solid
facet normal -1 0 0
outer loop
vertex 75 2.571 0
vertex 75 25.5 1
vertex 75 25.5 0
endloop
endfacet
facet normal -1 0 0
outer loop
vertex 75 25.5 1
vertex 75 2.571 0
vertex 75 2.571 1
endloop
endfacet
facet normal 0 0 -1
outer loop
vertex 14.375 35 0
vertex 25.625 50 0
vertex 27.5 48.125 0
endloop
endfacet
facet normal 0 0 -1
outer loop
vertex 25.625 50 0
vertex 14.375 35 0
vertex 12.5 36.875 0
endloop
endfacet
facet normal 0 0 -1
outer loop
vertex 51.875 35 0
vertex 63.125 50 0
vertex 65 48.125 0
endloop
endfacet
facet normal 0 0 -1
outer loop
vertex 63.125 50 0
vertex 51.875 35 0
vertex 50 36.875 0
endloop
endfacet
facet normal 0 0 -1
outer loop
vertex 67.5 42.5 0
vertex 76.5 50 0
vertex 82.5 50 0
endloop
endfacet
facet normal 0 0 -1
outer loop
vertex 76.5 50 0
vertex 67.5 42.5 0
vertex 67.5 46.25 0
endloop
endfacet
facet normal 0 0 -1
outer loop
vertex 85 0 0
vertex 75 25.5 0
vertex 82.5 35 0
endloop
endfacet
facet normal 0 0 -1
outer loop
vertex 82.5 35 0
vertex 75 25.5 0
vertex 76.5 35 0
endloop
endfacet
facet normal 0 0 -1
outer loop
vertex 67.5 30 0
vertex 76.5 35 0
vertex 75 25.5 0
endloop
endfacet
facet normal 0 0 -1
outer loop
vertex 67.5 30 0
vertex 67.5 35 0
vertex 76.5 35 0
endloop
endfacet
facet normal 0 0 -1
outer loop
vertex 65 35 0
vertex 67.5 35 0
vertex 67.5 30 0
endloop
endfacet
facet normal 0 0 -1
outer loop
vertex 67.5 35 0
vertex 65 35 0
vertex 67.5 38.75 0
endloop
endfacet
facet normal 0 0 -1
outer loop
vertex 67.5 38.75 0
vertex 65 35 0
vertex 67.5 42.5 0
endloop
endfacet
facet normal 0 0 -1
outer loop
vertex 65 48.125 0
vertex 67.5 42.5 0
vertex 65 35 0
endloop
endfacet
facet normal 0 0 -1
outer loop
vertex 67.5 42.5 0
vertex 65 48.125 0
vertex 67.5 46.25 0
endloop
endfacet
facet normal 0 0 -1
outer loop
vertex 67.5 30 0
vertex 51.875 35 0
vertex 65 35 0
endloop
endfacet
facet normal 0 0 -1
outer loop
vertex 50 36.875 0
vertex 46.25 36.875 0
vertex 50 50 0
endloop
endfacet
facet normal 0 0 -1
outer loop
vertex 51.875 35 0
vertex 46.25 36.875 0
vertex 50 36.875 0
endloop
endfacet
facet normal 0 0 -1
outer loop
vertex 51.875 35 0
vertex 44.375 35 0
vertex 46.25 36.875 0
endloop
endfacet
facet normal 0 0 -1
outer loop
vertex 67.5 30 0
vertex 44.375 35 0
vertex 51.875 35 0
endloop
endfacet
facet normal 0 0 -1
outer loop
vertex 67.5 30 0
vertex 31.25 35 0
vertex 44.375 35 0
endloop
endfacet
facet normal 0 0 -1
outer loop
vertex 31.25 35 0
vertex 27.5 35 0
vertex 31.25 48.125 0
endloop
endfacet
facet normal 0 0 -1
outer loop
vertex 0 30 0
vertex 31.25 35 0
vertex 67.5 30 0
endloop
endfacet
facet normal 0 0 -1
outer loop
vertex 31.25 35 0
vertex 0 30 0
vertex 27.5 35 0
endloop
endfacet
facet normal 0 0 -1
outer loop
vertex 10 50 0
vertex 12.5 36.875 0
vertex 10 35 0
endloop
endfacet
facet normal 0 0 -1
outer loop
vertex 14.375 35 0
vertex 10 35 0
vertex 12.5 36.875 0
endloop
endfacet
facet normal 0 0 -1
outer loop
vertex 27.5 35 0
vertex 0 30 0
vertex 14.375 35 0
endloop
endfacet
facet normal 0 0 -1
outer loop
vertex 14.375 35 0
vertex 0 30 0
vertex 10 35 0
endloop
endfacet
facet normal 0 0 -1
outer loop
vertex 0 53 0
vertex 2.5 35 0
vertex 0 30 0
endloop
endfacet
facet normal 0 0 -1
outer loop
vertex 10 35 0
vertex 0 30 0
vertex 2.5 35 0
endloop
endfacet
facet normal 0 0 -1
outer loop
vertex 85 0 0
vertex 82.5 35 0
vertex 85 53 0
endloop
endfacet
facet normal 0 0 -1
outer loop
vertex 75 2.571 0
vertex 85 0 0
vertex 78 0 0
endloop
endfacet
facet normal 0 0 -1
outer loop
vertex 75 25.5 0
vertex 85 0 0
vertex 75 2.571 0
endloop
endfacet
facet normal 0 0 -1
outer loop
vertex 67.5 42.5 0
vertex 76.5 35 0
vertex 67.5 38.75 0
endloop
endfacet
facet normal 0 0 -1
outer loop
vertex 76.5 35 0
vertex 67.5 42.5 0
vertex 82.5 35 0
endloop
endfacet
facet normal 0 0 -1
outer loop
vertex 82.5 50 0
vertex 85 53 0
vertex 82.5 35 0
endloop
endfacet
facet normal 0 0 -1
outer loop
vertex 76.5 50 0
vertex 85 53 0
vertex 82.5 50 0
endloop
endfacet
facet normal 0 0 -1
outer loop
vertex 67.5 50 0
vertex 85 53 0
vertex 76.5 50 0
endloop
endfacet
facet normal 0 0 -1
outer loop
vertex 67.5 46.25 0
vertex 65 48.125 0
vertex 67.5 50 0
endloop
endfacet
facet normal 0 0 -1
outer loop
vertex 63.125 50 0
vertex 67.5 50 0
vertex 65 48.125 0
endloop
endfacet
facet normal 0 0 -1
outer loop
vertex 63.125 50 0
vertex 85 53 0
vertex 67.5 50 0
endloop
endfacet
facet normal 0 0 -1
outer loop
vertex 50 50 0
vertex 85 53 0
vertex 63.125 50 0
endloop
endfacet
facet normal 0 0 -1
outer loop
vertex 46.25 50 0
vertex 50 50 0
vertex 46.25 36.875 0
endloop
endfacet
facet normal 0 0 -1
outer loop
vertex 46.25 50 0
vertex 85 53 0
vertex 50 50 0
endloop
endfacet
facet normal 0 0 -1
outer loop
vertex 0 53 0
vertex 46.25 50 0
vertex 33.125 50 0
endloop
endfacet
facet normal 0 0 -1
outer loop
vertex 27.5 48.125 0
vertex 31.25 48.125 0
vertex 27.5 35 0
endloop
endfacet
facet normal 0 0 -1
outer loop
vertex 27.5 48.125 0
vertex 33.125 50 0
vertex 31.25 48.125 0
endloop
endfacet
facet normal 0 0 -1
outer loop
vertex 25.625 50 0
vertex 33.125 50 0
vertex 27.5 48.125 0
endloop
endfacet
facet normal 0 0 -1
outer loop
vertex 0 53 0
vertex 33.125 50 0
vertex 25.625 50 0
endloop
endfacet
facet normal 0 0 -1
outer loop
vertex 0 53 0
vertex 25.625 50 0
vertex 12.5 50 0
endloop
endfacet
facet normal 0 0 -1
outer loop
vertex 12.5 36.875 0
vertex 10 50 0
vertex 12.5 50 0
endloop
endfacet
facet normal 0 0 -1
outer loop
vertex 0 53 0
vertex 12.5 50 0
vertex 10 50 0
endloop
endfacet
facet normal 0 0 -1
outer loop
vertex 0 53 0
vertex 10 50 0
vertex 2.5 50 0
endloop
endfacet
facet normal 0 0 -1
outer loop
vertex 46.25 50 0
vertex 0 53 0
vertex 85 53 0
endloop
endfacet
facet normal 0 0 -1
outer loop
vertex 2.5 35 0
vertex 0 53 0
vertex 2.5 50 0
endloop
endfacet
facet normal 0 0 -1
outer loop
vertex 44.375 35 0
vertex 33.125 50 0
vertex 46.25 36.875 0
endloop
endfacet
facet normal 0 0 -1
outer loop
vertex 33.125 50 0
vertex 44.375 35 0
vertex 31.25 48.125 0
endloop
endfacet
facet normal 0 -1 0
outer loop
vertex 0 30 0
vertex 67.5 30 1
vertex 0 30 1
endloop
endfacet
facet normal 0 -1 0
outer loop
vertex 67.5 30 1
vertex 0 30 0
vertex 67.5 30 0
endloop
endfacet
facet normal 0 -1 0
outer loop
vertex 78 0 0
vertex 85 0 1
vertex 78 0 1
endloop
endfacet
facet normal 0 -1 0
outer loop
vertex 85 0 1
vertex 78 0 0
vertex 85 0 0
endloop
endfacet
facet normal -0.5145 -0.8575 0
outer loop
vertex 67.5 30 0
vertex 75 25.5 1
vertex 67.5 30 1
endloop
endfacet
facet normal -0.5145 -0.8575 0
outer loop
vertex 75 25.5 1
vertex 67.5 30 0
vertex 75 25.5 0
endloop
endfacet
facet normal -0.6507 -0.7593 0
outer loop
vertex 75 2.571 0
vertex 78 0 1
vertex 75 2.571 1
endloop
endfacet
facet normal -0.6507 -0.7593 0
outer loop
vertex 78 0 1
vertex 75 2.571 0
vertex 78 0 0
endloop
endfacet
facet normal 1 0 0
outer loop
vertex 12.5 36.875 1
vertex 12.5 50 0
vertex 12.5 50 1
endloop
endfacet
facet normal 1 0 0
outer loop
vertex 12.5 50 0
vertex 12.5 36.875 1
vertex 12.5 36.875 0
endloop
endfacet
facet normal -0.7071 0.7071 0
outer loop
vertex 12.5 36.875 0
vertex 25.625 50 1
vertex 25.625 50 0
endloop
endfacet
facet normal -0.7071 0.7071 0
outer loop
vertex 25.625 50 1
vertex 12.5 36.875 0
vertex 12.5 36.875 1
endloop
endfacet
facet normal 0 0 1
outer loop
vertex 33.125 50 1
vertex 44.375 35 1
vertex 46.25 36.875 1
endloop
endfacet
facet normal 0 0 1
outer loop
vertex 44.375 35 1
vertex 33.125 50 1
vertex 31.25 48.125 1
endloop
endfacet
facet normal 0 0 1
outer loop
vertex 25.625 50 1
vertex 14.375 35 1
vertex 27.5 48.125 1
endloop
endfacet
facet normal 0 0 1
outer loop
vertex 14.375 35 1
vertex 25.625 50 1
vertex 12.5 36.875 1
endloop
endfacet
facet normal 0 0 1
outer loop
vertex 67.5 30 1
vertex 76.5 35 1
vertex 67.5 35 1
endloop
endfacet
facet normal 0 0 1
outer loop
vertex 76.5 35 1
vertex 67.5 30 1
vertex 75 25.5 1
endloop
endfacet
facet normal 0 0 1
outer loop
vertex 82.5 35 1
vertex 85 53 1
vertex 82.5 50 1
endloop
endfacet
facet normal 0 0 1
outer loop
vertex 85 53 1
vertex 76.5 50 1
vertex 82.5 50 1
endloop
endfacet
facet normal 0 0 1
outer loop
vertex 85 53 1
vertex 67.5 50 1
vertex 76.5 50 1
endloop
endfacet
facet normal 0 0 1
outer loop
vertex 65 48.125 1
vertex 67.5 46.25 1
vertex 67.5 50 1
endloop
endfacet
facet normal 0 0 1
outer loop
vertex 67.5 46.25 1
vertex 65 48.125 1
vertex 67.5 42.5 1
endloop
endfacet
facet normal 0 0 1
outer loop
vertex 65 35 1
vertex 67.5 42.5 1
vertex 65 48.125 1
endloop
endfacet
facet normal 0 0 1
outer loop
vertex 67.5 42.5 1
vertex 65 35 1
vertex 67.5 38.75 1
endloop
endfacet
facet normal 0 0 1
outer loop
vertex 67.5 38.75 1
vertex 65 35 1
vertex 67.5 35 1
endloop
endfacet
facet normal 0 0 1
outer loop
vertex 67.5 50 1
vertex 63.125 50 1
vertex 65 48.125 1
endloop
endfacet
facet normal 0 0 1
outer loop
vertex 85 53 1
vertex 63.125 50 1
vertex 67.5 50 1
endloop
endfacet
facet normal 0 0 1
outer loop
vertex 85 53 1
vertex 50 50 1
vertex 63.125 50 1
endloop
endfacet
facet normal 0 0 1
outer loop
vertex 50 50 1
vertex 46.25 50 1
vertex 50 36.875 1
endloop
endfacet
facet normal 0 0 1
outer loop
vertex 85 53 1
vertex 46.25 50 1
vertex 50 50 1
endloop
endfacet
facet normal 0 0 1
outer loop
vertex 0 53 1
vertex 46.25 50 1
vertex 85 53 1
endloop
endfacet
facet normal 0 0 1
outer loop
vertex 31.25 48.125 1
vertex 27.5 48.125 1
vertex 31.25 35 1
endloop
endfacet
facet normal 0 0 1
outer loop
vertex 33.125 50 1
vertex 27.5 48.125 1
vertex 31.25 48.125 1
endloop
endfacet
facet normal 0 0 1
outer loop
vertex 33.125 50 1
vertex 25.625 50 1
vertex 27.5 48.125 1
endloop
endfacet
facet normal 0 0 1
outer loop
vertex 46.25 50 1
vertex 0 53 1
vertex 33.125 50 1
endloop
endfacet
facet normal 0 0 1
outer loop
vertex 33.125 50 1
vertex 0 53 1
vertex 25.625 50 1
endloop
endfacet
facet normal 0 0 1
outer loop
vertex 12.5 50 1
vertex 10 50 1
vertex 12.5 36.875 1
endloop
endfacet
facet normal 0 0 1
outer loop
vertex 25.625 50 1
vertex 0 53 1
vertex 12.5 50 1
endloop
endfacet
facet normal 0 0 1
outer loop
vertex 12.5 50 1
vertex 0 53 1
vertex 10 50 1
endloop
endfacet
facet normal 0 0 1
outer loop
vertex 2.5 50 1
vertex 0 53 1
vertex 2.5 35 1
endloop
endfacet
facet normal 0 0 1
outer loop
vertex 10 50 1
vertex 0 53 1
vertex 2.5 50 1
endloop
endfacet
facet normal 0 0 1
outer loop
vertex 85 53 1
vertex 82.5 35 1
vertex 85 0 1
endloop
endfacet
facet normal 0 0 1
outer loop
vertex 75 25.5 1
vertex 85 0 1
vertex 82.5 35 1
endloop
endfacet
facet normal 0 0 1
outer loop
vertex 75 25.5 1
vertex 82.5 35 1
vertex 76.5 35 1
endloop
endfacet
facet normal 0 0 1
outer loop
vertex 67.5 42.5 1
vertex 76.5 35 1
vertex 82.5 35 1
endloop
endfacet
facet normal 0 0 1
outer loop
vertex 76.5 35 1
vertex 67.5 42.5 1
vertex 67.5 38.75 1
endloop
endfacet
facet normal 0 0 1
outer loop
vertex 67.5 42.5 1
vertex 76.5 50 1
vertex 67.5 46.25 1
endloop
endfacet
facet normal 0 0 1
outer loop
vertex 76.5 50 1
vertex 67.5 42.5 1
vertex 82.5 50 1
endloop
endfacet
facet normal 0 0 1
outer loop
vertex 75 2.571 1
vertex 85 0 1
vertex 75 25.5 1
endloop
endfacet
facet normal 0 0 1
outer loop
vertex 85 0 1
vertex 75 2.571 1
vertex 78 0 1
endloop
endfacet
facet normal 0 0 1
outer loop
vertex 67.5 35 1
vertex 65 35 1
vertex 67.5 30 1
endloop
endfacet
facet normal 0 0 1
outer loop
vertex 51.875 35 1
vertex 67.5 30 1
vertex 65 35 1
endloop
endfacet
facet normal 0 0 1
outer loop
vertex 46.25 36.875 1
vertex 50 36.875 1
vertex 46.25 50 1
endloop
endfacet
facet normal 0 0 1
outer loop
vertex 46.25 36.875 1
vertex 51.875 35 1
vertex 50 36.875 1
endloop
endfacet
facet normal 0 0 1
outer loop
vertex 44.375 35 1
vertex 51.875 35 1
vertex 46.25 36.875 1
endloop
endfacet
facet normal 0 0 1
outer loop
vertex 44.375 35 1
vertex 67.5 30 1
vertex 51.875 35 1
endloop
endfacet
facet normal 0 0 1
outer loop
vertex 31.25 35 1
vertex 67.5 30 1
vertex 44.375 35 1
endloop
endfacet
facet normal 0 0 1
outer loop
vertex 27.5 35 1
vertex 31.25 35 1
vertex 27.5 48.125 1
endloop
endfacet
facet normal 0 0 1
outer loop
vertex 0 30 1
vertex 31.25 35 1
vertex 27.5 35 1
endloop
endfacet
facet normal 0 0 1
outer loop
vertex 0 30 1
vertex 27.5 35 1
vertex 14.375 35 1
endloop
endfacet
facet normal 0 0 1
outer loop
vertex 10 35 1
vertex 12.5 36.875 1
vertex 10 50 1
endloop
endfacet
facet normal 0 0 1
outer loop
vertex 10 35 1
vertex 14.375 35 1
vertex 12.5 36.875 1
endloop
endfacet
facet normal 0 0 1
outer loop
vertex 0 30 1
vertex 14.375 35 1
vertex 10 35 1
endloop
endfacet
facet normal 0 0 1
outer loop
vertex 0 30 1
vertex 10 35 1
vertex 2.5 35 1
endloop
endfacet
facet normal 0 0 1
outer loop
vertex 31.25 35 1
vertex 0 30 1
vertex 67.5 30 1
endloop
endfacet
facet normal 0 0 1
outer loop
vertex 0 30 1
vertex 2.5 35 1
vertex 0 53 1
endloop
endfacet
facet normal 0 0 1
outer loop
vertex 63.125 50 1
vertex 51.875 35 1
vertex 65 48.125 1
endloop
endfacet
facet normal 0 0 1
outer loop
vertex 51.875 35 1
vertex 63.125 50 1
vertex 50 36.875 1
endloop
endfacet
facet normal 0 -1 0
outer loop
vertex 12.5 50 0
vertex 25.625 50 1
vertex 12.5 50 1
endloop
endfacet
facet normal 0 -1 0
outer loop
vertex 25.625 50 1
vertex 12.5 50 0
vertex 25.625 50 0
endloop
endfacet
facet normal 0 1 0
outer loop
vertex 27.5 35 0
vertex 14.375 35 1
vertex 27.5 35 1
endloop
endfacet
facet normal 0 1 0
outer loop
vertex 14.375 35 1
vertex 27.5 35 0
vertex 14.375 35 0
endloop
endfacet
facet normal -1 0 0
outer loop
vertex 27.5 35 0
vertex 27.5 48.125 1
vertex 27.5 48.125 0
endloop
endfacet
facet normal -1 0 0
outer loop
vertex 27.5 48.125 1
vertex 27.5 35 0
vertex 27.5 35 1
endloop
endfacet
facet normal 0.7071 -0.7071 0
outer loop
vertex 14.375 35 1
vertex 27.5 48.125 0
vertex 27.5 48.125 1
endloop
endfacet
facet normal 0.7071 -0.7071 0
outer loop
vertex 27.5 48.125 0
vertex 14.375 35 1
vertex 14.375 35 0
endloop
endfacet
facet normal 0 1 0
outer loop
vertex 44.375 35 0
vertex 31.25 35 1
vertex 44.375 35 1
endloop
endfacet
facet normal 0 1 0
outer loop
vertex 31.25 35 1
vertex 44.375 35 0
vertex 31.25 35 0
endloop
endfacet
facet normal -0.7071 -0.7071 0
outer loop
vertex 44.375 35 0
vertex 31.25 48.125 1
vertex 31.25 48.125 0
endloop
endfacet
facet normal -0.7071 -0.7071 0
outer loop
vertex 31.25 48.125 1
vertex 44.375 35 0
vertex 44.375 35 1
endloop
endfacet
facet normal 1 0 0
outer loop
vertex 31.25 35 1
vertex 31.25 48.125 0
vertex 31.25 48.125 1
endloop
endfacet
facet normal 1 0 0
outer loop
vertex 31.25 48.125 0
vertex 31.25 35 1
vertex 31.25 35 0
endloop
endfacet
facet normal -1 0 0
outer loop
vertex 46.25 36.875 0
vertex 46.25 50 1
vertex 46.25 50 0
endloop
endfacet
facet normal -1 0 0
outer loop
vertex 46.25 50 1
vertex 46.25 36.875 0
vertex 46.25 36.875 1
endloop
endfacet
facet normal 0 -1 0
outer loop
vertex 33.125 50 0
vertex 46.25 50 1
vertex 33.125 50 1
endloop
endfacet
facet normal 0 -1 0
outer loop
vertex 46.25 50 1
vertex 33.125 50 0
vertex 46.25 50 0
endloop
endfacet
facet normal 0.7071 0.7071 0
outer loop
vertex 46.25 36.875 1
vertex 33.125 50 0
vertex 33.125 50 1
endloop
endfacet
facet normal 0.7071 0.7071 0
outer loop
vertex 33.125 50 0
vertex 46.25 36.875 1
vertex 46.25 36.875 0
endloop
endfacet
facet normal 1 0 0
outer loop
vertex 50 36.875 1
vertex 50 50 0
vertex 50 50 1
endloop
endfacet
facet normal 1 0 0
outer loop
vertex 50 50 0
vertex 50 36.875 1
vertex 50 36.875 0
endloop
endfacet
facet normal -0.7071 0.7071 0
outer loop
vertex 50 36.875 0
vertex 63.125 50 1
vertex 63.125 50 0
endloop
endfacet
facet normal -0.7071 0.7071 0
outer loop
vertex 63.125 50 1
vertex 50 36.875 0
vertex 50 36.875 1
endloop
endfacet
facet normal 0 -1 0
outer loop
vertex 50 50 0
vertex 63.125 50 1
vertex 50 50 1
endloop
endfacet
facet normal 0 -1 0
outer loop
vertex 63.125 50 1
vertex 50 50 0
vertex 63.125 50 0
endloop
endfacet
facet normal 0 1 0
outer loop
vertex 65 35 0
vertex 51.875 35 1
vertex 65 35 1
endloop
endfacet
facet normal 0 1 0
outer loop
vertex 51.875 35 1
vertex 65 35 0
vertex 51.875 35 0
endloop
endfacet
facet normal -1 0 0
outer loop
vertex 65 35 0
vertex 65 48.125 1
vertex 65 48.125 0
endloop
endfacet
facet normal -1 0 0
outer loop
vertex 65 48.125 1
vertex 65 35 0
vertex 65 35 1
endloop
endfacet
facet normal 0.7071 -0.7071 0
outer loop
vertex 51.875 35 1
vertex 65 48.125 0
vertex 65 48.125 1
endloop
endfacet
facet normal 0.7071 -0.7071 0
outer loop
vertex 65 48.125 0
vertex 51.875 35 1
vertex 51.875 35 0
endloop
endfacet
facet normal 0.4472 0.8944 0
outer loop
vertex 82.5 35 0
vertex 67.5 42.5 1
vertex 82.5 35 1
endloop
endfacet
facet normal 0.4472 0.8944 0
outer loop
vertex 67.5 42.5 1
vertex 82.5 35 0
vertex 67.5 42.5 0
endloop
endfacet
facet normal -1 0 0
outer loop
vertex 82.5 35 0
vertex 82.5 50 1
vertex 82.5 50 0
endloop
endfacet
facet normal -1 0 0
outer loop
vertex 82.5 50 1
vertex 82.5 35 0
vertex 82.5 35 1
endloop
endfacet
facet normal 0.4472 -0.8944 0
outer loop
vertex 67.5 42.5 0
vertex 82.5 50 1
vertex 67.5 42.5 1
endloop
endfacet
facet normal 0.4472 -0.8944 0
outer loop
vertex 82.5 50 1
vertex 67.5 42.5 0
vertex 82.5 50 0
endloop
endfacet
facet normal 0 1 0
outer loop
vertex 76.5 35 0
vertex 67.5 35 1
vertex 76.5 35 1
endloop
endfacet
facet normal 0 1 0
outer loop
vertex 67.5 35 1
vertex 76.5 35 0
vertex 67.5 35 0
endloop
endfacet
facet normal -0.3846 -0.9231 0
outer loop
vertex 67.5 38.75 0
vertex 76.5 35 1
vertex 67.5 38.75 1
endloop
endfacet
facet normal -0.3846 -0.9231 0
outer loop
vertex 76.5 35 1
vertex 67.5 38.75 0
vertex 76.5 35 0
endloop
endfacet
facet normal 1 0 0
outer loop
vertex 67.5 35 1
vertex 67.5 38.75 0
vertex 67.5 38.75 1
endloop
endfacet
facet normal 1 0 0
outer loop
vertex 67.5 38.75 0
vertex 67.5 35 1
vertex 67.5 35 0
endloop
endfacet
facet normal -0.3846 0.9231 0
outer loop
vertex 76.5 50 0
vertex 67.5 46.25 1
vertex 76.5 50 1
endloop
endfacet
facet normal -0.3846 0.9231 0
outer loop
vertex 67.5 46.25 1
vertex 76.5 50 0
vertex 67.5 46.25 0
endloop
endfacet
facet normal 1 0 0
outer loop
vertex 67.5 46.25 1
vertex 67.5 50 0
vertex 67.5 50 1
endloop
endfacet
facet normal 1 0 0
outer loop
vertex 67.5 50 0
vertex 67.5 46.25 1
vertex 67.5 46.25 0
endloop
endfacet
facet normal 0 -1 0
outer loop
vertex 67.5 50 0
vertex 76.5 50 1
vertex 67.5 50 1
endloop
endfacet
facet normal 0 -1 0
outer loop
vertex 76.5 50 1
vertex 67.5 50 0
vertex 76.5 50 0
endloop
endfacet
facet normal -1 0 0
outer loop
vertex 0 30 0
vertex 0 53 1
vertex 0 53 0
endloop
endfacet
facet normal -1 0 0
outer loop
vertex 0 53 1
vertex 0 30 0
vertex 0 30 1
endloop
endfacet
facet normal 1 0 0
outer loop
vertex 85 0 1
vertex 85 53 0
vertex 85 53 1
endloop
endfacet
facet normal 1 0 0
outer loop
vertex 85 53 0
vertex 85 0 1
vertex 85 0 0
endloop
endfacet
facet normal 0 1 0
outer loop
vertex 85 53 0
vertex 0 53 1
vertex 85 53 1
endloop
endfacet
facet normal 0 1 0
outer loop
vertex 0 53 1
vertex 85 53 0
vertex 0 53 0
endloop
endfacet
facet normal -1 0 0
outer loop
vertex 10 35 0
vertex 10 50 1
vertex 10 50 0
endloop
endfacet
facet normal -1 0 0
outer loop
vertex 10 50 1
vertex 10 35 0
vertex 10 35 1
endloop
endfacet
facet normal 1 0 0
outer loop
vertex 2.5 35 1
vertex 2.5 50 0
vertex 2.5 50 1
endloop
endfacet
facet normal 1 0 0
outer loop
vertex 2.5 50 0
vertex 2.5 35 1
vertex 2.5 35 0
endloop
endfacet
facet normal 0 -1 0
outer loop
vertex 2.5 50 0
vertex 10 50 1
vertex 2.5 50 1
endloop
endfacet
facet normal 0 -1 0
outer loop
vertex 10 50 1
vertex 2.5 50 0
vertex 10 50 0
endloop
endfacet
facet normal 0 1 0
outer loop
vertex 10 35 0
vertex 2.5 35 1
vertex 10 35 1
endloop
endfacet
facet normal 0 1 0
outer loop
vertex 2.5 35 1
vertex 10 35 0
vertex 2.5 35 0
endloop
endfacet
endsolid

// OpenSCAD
// This file defines a credit card sized door latch slipping tool.
// Design by: Evan Pratten <evan@ewpratten.com>
//
// Notes:
// - All units are in millimeters

module poly3d(verts) {
  linear_extrude(height = 1) { polygon(verts); }
}

module unit_dual_tris() {
  union() {
    poly3d([ [ 0, 0.125 ], [ 0, 1 ], [ 0.875, 1 ] ]);
    poly3d([ [ 0.125, 0 ], [ 1, 0 ], [ 1, 0.875 ] ]);
  }
}

difference() {
  // The card
  cube([ 85, 53, 1 ]);

  // The cutout shape
  translate([ 30, 0, 0 ]) {
    scale([ 30, 30, 10 ]) {
      union() {
        // Left wedge
        poly3d([ [ 0, 0 ], [ 1, 0 ], [ 1, 1 ] ]);

        // Right slice
        difference() {
          // Tall slice
          translate([ 1, 0, 0 ]) { cube([ 0.5, 1, 1 ]); }

          // Corner nips
          scale([ 1, 1, 1.25 ]) {
            poly3d([ [ 1.25, 1 ], [ 1.5, 1 ], [ 1.5, 0.85 ] ]);
          }
        }

        // Bottom right point
        poly3d([ [ 1.25, 0.3 ], [ 1.6, 0 ], [ 1.25, 0 ] ]);
      }
    }
  }

  // Keyring hole
  translate([ 2.5, 35, 0 ]) {
    // cylinder(h = 2, r = 3);
    cube([ 7.5, 15, 1 ]);
  }

  // Material removal shapes
  union() {
    poly3d([
      [ 0, 0 ],
      [ 60, 0 ],
      [ 60, 30 ],
      [ 0, 30 ],
    ]);

    // Triangle mesh cutouts
    translate([ 12.5, 35, 0 ]) {
      scale([ 15, 15, 1 ]) {
        // Left triangle
        unit_dual_tris();

        // Middle triangle
        translate([ 1.25, 0, 0 ]) {
          translate([ 1, 0, 0 ]) {
            rotate(a = 90, v = [ 0, 0, 1 ]) { unit_dual_tris(); }
          }
        }

        // Right triangle
        translate([ 2.5, 0, 0 ]) { unit_dual_tris(); }
      }
    }

    // Top right structural triangles
    translate([ 67.5, 35, 0 ]) {
      scale([ 15, 15, 1 ]) {
        union() {
          poly3d([ [ 0, 0.5 ], [ 1, 1 ], [ 1, 0 ] ]);
          poly3d([ [ 0, 0 ], [ 0, 0.25 ], [ 0.6, 0 ] ]);
          poly3d([ [ 0, 1 ], [ 0, 0.75 ], [ 0.6, 1 ] ]);
        }
      }
    }
  }
}
